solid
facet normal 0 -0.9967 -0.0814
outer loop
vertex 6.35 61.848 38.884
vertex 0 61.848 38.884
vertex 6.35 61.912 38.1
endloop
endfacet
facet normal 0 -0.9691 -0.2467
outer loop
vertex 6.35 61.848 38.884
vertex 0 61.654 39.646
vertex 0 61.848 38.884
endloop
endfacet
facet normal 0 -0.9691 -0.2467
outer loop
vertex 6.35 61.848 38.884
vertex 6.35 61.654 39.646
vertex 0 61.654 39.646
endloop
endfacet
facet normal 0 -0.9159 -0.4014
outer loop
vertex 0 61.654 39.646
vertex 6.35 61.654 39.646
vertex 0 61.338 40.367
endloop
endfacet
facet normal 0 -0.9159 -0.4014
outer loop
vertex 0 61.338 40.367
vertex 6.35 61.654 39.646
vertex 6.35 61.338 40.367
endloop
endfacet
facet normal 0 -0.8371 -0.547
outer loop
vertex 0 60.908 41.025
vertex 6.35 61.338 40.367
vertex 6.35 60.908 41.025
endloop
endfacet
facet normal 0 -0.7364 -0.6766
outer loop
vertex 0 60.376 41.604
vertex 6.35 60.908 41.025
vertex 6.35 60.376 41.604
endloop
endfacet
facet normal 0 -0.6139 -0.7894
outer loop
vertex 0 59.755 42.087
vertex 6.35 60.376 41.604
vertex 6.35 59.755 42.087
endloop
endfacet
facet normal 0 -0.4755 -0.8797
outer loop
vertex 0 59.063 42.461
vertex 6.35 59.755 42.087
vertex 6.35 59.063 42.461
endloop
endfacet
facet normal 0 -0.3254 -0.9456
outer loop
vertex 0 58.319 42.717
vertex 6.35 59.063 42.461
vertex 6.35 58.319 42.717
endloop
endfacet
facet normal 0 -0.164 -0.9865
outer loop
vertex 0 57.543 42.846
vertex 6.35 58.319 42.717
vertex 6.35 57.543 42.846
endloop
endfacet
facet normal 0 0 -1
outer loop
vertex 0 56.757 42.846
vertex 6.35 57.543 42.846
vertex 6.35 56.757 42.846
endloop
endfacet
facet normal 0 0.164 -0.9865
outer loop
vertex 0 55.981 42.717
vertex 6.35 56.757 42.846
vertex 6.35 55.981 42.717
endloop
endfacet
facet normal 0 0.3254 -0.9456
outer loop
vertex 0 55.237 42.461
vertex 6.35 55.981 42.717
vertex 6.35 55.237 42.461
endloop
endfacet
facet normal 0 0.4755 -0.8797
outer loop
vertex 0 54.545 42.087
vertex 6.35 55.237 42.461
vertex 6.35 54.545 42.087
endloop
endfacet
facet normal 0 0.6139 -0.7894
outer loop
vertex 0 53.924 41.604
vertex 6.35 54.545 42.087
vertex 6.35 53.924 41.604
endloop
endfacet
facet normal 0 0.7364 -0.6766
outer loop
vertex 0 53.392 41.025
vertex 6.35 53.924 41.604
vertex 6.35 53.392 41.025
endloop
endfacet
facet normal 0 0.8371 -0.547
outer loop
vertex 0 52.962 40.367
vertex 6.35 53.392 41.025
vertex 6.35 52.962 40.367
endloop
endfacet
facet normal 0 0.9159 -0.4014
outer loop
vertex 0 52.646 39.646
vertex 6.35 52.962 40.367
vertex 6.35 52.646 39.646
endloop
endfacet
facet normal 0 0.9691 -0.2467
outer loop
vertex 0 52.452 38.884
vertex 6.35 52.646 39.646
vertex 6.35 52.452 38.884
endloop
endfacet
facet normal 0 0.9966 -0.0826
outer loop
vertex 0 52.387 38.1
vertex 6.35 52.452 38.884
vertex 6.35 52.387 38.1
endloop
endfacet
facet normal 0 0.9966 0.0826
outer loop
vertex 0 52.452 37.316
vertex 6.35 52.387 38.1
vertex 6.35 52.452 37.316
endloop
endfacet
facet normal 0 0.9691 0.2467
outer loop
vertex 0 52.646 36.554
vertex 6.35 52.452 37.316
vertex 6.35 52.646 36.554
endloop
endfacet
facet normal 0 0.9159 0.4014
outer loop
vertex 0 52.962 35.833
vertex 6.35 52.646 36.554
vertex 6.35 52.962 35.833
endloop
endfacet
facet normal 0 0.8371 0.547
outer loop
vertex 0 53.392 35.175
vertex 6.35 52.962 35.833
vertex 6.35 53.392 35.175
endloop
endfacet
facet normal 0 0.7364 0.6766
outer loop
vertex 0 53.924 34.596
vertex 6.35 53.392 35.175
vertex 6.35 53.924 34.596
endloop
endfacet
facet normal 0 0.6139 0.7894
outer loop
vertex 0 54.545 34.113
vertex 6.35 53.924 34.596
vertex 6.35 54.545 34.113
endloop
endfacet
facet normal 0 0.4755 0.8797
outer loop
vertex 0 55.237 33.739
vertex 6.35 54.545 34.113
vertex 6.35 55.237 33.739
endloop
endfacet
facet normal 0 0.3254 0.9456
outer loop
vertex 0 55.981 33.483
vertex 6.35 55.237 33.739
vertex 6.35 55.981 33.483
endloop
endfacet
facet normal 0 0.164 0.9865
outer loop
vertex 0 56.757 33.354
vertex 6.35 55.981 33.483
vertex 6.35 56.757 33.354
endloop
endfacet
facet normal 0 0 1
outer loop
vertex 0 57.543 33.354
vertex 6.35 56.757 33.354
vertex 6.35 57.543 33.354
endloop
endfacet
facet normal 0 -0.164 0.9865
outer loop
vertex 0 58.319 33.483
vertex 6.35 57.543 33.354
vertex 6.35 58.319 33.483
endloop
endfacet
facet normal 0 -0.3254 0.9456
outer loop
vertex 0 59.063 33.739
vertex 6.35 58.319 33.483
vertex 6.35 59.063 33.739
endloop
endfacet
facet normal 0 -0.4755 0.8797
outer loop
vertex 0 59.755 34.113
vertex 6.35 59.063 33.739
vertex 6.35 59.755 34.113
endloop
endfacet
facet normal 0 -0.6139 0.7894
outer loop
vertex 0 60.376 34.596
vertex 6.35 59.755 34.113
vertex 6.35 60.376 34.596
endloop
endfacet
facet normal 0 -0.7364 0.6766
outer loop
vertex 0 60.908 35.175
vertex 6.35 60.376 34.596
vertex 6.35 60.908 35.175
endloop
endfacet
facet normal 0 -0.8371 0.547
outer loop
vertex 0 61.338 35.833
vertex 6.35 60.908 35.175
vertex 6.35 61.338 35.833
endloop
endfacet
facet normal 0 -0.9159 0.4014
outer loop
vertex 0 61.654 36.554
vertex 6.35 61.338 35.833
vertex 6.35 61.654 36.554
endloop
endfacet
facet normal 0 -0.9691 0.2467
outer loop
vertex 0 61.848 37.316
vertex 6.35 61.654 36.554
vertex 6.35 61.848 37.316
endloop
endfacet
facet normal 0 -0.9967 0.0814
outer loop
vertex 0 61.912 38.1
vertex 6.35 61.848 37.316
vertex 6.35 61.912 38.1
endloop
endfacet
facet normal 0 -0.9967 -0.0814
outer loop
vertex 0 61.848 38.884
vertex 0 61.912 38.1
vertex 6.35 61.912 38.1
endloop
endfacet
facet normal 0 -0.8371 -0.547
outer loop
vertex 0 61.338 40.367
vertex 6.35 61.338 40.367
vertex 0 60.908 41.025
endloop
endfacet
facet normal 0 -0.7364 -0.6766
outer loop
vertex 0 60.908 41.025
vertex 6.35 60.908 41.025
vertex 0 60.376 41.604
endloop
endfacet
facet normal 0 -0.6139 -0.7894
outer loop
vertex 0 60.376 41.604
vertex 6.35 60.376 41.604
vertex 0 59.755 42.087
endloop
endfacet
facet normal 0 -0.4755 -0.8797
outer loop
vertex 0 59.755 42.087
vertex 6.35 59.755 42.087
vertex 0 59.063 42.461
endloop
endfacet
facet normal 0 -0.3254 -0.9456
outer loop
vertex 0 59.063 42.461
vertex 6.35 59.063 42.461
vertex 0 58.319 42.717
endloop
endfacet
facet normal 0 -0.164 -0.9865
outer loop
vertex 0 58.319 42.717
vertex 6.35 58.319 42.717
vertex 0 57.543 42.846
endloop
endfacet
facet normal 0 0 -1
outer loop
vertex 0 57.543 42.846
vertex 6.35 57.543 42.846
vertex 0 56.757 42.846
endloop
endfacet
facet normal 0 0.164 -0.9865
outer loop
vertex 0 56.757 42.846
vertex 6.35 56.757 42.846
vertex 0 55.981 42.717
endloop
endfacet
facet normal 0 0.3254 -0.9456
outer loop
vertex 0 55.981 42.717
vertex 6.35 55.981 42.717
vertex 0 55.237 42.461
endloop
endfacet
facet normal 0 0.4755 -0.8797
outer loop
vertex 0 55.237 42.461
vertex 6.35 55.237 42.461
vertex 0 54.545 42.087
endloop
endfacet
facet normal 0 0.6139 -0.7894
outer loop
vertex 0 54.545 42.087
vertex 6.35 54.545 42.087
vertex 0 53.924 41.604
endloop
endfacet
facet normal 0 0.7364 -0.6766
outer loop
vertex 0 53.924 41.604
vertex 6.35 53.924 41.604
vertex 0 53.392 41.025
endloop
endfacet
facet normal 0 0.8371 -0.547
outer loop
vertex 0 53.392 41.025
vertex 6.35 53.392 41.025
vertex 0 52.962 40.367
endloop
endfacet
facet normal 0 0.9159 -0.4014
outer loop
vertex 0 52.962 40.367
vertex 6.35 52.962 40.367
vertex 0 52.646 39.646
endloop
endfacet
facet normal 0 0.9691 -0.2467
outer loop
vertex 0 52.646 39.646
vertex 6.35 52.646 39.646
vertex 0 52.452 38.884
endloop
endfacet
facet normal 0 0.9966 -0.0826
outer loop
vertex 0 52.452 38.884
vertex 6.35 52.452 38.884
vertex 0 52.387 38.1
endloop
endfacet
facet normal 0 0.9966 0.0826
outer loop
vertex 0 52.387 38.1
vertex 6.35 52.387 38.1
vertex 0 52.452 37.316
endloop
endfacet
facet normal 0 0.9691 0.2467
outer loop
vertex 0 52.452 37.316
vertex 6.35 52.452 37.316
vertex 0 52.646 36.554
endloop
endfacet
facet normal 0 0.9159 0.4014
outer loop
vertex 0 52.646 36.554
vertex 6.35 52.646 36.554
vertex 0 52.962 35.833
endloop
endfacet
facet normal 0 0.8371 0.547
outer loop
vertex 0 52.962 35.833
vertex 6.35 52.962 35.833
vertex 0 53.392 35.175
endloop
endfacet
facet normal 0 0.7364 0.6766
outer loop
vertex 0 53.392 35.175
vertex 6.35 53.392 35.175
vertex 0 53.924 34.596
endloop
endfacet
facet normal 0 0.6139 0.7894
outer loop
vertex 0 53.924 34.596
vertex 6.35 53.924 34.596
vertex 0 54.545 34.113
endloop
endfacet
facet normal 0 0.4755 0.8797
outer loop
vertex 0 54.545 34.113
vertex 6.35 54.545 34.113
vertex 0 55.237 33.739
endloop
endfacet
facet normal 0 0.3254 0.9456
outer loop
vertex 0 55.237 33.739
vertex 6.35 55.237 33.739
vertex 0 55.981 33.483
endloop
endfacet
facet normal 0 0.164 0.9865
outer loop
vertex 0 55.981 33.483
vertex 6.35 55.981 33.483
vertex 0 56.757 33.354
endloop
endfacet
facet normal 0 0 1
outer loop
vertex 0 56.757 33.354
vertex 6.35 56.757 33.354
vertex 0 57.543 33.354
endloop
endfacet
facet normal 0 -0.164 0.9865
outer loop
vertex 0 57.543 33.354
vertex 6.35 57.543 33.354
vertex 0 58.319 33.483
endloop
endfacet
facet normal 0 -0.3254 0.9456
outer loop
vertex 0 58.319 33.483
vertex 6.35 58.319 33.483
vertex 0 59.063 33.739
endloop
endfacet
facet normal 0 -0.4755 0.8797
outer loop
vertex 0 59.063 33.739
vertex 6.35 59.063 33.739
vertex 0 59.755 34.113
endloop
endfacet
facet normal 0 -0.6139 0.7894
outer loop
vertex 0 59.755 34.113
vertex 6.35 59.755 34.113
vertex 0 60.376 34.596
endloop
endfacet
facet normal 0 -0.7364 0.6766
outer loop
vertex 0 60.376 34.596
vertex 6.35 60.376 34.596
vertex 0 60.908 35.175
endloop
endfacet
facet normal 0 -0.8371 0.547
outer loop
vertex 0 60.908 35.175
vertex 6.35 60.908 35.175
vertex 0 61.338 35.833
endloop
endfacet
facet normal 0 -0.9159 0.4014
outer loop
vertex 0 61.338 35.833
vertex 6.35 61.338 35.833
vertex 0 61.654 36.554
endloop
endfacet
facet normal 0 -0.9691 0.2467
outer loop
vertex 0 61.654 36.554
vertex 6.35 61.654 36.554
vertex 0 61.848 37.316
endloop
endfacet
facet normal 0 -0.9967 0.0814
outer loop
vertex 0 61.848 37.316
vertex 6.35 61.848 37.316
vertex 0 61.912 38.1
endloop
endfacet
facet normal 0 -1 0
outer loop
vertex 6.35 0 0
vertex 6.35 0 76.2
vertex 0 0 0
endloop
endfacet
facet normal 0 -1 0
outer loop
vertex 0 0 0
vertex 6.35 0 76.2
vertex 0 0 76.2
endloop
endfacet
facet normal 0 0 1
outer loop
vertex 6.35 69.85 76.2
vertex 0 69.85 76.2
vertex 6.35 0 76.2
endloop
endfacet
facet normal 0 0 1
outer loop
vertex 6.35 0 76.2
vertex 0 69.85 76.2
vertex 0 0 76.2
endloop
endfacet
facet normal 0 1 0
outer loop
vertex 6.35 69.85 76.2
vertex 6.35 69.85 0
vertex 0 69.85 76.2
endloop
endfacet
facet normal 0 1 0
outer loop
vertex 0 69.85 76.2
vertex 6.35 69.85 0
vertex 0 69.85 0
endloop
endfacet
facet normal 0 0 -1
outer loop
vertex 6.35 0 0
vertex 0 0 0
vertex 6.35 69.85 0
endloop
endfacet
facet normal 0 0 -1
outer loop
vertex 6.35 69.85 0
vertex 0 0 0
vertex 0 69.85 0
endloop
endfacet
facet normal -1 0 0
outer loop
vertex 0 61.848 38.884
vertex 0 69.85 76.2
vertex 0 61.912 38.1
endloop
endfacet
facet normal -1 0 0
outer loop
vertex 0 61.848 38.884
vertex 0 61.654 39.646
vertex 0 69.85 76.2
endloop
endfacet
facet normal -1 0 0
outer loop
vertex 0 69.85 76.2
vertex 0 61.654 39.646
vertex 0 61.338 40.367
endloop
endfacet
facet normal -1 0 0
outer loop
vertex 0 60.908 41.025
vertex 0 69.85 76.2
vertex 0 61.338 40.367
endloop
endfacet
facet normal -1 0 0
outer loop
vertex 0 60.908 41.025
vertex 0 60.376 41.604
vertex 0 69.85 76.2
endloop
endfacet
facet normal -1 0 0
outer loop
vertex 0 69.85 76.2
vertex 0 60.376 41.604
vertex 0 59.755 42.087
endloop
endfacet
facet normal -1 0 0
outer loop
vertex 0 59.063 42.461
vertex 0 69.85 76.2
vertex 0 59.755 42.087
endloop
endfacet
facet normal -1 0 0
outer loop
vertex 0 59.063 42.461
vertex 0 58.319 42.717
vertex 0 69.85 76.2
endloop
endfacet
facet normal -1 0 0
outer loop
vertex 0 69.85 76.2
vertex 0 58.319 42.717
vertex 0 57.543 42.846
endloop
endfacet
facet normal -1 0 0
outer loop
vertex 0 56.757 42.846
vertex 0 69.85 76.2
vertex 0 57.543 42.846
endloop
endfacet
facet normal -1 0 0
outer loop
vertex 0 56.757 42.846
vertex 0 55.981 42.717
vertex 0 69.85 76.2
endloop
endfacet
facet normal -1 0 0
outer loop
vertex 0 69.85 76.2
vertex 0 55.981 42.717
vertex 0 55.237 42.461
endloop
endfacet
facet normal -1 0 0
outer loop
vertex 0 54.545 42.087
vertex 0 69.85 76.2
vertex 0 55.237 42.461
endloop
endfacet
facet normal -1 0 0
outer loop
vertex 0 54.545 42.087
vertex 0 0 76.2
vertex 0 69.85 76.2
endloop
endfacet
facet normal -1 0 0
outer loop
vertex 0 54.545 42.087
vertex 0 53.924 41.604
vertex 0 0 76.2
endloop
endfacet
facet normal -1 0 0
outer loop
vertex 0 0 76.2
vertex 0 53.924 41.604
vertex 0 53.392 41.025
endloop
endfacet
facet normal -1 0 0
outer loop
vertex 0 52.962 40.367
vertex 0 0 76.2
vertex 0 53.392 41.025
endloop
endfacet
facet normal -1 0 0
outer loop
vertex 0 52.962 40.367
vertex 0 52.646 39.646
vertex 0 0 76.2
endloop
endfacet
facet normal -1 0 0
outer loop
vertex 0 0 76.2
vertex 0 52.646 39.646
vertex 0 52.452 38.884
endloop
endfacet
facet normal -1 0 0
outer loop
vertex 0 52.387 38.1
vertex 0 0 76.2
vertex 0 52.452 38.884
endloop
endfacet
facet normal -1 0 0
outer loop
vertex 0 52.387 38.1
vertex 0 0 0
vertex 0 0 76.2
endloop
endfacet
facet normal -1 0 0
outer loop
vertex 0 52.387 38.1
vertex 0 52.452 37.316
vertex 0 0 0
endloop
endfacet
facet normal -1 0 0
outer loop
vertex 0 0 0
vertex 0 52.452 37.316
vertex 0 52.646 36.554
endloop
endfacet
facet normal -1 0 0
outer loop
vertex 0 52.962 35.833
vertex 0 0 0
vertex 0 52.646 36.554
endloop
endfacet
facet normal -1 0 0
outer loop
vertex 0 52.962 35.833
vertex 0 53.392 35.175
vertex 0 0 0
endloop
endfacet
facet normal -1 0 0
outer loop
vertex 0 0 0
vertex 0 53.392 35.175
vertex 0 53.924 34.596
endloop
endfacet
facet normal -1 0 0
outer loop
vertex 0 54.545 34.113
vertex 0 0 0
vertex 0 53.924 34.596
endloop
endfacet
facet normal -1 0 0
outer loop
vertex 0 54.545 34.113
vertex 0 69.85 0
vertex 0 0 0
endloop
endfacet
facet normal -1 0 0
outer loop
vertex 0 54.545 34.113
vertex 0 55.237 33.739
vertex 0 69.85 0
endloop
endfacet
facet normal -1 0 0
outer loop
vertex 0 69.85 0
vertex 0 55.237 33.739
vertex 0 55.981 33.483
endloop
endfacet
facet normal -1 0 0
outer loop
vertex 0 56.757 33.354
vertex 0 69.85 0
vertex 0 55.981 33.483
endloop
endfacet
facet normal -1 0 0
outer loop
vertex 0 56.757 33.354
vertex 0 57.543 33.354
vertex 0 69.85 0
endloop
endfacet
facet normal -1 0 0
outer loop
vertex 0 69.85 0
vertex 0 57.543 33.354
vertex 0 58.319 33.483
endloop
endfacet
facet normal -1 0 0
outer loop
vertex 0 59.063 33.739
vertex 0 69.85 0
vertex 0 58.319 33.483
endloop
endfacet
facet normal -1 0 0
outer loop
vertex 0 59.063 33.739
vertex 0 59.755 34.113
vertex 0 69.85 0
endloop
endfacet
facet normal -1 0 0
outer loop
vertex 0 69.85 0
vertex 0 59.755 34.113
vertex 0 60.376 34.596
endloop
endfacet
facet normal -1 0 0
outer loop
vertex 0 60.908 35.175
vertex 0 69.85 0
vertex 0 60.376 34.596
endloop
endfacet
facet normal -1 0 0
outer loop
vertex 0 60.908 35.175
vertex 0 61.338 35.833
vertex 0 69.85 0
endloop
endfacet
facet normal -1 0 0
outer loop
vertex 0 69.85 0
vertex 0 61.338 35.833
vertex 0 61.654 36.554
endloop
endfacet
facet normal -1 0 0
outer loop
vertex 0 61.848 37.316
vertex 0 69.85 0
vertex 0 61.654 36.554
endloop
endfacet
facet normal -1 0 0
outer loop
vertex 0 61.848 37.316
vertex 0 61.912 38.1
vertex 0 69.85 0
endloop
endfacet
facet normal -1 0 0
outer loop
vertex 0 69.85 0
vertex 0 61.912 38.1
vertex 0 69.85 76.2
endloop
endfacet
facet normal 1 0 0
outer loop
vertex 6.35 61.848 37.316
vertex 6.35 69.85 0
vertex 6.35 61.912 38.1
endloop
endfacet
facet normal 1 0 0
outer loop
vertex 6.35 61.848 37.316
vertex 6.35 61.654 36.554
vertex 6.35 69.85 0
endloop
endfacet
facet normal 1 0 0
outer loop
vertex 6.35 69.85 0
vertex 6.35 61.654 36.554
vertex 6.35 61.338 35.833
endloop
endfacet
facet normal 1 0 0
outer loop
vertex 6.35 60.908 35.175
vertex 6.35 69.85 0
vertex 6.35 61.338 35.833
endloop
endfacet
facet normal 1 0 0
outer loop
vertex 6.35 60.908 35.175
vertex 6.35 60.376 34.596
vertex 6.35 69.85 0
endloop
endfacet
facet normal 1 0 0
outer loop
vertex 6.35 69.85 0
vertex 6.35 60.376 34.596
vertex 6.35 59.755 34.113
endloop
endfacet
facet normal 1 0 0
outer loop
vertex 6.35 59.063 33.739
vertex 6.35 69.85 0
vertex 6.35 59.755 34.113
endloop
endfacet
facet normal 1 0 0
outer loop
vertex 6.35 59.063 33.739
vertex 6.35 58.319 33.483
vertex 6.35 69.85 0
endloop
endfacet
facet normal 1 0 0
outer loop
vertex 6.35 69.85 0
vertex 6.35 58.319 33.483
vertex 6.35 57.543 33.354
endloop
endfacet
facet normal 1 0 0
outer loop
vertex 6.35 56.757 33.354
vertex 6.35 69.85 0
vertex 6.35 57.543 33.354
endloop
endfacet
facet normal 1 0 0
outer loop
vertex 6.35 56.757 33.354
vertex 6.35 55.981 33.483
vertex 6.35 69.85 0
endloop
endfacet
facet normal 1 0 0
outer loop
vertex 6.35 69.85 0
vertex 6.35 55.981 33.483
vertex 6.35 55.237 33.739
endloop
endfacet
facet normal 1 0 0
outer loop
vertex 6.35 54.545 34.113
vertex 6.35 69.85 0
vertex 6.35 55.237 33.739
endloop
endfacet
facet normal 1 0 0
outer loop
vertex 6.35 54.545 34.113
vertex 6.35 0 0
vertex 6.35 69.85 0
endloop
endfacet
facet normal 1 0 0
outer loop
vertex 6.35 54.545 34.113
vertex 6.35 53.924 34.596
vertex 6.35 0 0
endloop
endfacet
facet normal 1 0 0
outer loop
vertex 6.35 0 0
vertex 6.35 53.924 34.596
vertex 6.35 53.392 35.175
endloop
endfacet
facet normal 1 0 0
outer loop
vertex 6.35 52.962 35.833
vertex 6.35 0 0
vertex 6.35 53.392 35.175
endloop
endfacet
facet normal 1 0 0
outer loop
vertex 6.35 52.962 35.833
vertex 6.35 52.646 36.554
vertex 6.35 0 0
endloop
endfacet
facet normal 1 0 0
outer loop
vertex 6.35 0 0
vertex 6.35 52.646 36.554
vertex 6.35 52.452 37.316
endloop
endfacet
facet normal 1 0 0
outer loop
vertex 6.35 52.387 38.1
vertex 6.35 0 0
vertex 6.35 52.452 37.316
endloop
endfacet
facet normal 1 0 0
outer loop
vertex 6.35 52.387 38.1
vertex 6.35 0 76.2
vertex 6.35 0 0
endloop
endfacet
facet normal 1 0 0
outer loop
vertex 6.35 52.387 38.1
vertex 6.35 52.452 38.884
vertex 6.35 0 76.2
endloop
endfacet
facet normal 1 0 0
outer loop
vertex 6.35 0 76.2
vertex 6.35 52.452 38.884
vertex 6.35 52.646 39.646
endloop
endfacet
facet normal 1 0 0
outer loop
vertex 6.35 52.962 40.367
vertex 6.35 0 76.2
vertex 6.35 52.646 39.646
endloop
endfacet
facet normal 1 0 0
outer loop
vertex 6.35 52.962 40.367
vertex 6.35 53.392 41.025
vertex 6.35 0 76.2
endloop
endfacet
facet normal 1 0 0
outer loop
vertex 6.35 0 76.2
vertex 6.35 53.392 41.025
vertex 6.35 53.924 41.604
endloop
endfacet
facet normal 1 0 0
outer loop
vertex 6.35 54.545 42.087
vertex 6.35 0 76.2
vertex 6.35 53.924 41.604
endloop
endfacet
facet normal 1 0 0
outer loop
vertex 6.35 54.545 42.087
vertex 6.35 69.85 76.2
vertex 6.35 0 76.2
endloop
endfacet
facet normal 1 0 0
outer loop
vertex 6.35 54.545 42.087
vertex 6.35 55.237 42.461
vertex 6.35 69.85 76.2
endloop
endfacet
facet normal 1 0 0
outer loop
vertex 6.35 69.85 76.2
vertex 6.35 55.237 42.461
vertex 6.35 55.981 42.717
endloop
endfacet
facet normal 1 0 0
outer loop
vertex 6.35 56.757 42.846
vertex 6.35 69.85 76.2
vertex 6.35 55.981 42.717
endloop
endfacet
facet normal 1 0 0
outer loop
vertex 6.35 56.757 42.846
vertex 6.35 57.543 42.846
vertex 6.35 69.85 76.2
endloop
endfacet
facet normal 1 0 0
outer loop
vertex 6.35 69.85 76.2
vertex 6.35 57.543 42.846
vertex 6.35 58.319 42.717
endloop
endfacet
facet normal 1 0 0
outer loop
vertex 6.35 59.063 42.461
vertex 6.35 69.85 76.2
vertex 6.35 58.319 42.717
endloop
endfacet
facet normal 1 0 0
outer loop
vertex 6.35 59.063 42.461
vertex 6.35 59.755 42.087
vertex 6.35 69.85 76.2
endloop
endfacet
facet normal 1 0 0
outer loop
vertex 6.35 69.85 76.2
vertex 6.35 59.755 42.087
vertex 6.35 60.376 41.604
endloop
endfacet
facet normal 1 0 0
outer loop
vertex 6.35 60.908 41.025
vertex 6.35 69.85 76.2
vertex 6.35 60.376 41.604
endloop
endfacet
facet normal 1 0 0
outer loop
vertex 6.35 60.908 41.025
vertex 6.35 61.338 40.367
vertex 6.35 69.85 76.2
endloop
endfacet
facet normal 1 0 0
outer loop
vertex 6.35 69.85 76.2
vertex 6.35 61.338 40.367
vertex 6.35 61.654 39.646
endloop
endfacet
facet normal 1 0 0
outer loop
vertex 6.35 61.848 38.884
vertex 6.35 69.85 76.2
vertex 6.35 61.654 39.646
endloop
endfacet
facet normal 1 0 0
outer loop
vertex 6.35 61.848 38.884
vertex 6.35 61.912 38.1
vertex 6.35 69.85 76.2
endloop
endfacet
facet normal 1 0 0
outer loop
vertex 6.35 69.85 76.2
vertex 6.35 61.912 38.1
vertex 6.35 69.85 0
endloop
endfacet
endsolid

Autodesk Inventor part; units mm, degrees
ref_plane "YZ Plane" through (0, 0, 0) normal (1, 0, 0) x (0, 1, 0)
ref_plane "XZ Plane" through (0, 0, 0) normal (0, 1, 0) x (-1, 0, 0)
ref_plane "XY Plane" through (0, 0, 0) normal (0, 0, 1) x (1, 0, 0)
sketch "Sketch1" plane through (0, 0, 0) normal (1, 0, 0) x (0, 1, 0)
  line L0 (0, 0) -> (69.85, 0)
  line L1 (69.85, 0) -> (69.85, 76.2)
  line L2 (69.85, 76.2) -> (0, 76.2)
  line L3 (0, 76.2) -> (0, 0)
  circle A0 centre (57.15, 38.1) radius 4.7625
  dimension "d0" = 76.2
  dimension "d1" = 69.85
  dimension "d2" = 38.1
  dimension "d3" = 9.525
  dimension "d4" = 12.7
extrude "Extrusion1" add sketch "Sketch1" along normal blind 6.35
properties part number "RollerMountRepresentation"
